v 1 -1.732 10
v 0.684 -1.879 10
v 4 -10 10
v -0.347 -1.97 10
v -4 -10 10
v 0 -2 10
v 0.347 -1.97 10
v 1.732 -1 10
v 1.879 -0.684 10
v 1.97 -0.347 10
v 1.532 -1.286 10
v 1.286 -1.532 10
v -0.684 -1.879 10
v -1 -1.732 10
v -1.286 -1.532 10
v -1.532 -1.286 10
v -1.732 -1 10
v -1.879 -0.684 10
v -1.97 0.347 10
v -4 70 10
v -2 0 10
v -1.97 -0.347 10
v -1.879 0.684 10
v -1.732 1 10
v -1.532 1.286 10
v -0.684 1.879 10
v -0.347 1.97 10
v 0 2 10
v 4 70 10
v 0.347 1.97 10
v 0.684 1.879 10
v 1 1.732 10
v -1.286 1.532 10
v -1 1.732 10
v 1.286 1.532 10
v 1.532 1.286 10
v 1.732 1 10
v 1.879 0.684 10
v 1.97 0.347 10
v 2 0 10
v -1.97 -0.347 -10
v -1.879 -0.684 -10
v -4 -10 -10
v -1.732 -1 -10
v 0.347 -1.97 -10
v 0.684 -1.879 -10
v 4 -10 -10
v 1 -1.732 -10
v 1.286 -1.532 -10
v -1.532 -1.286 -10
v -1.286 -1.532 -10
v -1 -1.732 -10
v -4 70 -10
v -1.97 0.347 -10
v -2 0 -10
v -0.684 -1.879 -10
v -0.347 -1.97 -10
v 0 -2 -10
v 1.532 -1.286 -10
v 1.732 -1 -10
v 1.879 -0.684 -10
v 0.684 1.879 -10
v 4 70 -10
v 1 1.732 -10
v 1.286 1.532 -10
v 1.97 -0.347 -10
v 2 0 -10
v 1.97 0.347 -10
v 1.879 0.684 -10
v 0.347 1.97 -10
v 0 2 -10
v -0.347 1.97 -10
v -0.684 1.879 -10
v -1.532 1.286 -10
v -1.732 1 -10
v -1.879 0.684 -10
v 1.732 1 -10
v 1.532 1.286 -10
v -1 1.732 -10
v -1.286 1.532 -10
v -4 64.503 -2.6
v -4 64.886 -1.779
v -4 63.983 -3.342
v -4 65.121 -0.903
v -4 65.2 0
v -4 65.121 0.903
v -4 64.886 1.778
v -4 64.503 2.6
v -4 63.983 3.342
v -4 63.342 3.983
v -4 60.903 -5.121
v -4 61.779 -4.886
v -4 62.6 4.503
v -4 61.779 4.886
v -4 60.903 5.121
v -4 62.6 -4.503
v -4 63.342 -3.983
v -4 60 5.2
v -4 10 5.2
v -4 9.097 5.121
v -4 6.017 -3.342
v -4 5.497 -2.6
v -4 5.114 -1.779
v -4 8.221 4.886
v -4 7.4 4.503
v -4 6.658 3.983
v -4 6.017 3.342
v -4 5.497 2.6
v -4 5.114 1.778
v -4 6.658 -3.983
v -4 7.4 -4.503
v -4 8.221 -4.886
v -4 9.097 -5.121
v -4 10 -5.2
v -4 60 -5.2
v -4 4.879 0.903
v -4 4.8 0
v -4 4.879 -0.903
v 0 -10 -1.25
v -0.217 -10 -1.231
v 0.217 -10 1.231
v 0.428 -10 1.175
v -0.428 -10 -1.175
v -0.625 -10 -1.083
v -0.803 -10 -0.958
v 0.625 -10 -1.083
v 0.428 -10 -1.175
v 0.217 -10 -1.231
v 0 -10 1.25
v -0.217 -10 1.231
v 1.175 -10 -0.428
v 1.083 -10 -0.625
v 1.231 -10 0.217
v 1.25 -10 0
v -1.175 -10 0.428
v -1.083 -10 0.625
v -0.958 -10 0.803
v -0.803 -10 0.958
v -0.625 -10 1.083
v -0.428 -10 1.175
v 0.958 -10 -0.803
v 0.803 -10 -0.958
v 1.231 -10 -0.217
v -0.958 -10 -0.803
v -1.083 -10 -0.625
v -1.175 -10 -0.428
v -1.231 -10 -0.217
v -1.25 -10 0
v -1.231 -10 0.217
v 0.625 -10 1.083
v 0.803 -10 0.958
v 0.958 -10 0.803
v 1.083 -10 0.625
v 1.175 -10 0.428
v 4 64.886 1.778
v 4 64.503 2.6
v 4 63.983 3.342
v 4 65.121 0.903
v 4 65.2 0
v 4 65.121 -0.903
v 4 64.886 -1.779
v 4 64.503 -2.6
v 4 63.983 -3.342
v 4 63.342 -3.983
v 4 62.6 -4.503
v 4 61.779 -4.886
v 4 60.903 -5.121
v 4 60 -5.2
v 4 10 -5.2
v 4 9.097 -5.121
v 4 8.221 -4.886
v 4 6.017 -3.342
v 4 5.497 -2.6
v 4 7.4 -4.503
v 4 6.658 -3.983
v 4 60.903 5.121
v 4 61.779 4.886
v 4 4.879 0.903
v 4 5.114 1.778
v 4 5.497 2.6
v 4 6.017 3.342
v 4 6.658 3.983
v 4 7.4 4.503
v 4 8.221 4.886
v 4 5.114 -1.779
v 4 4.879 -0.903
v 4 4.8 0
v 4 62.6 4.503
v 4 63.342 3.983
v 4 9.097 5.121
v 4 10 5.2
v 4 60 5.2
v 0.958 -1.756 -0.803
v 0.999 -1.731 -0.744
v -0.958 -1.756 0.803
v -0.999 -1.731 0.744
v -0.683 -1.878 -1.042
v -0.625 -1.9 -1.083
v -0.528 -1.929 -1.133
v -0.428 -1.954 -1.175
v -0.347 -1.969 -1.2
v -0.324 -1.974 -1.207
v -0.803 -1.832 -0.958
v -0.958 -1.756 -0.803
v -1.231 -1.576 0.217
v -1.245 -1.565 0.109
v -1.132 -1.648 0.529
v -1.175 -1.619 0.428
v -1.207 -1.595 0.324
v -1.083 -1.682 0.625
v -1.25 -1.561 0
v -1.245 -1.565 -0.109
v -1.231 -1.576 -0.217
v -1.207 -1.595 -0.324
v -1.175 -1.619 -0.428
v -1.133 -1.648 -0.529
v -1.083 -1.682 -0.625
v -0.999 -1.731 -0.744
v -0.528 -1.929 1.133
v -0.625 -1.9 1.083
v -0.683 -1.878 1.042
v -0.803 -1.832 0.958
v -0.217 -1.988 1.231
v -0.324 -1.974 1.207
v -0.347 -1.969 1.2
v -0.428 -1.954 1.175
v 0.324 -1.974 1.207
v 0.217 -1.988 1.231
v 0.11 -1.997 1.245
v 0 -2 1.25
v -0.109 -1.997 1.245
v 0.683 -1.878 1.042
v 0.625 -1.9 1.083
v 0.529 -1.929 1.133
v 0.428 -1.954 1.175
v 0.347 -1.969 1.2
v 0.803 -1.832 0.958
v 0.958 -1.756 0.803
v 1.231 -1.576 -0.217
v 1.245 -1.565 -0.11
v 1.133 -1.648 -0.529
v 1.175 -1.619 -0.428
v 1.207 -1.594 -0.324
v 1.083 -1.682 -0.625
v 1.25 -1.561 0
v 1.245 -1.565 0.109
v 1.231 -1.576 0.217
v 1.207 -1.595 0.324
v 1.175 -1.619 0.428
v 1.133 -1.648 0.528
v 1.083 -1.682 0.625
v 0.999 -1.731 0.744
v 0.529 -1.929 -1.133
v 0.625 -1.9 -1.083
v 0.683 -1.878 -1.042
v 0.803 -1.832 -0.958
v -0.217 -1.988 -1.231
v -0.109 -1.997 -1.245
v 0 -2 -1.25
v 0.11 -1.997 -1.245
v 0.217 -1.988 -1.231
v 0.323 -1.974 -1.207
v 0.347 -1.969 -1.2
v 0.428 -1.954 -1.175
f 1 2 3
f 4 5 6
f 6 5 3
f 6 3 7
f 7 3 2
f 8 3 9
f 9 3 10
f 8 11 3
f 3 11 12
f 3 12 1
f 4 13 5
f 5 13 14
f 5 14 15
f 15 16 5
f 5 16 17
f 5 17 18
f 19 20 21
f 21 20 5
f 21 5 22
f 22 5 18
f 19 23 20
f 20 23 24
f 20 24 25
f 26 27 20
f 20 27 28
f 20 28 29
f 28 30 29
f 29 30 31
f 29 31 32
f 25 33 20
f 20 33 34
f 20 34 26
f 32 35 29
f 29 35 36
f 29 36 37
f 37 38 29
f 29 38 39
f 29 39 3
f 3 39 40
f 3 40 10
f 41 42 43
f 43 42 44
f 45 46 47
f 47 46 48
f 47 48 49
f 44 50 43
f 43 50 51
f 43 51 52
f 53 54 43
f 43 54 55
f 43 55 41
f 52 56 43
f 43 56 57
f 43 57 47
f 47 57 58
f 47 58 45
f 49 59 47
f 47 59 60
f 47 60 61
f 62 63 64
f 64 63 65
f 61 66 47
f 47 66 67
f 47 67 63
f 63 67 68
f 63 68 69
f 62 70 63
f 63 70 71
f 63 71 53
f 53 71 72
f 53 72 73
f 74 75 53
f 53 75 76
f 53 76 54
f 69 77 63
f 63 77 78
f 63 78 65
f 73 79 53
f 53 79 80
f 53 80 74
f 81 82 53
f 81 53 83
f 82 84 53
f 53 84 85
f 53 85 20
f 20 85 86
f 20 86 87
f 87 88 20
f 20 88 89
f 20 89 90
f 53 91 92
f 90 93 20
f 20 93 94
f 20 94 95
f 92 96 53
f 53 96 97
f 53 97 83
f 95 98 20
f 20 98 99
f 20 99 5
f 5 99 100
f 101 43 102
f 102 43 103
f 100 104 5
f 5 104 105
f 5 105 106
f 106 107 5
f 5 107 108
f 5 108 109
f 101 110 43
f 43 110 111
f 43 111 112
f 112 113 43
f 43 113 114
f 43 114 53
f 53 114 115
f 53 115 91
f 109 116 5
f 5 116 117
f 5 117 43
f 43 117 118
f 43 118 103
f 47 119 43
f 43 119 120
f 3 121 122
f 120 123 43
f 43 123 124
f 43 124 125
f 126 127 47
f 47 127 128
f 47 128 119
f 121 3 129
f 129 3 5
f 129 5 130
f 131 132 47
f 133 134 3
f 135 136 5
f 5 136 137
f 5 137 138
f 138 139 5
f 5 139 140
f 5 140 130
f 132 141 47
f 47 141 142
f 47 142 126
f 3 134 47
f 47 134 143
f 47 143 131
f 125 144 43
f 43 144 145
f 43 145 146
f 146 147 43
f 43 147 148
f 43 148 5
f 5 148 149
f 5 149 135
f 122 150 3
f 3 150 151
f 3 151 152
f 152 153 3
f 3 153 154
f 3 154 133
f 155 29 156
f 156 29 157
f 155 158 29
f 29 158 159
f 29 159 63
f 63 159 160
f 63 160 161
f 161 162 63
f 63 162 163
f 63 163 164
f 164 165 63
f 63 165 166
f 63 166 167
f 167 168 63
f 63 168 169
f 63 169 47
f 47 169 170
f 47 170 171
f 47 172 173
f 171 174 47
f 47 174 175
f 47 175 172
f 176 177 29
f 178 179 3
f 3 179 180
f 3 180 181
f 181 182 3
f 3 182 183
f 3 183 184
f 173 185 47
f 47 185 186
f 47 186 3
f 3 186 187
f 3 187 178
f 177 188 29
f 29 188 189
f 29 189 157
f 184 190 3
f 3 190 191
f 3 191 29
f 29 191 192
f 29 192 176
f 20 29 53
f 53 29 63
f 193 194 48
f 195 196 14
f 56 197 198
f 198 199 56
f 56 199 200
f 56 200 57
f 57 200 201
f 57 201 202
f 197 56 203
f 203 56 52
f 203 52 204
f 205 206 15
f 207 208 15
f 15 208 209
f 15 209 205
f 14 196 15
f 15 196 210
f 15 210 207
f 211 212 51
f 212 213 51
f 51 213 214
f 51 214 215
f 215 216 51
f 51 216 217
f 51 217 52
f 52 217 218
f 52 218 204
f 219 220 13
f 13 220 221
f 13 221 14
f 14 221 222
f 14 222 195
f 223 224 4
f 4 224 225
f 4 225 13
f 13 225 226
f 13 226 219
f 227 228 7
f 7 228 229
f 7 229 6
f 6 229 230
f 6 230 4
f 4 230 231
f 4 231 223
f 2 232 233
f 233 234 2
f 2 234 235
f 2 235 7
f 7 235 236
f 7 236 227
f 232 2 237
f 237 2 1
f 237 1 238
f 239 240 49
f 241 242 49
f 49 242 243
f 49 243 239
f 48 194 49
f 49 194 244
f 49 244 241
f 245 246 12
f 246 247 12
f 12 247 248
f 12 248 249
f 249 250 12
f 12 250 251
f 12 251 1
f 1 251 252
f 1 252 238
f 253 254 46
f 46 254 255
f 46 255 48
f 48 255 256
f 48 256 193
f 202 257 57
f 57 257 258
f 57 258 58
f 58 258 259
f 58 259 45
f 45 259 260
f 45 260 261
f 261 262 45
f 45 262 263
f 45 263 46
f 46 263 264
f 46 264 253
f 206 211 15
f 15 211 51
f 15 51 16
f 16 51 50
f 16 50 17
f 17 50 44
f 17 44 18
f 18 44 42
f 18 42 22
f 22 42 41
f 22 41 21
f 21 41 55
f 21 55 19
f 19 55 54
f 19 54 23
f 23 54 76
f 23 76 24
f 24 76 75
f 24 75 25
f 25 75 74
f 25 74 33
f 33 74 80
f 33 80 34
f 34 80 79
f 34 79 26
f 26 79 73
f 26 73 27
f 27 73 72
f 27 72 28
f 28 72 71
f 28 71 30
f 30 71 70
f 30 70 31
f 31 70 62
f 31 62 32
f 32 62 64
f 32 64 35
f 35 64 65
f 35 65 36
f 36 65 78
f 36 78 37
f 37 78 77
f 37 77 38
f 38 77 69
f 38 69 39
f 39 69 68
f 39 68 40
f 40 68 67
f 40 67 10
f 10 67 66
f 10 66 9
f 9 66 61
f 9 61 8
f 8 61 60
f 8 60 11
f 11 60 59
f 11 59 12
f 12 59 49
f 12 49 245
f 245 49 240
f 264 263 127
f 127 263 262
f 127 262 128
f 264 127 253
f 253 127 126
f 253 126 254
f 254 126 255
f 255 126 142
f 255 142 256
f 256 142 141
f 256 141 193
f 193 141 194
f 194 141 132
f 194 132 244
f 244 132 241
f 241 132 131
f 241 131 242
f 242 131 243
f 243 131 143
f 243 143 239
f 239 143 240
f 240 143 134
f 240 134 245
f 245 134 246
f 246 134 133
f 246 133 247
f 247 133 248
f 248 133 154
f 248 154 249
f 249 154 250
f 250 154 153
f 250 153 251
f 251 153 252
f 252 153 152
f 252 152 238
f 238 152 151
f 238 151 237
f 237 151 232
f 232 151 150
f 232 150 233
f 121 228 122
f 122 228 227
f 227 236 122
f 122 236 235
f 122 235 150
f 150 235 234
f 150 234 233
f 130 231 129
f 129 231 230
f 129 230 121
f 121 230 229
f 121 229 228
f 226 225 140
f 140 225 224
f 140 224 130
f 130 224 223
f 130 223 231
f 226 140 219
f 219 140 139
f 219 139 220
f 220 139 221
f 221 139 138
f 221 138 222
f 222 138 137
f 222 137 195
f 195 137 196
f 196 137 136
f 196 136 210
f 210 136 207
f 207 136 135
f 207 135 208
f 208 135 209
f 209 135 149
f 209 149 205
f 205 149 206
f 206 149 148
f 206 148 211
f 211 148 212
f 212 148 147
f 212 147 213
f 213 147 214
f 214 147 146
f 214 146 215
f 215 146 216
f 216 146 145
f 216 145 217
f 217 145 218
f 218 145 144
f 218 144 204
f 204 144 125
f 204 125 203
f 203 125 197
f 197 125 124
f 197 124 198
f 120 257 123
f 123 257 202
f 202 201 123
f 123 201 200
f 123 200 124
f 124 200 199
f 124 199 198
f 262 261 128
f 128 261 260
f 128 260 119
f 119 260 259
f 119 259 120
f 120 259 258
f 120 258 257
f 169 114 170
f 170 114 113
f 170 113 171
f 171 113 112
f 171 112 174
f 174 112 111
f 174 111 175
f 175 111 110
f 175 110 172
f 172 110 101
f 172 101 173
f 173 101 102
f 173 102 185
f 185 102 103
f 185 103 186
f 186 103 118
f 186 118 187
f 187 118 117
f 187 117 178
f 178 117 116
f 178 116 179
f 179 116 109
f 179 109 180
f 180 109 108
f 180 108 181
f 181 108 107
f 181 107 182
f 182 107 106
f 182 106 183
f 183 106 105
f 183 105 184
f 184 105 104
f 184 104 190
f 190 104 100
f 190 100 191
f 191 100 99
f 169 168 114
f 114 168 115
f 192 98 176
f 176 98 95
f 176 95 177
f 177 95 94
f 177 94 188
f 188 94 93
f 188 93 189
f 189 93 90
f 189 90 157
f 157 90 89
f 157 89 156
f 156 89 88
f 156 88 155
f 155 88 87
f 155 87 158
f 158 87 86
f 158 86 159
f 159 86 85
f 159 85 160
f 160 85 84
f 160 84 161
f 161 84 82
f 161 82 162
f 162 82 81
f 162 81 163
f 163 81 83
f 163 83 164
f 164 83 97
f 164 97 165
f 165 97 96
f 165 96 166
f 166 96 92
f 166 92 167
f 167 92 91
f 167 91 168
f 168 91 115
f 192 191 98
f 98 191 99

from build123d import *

# Parameters (mm, degrees)
SKETCH1_W         = 8
SKETCH1_H         = 80
SKETCH1_R         = 2
MAIN_DEPTH        = 10
FIXHOLE_REACH     = 82
SKETCH3_R         = 1.25
ROLLINGHOLE_DEPTH = 9


with BuildPart() as part:
    # Sketch1 → Main (new body, symmetric)
    with BuildSketch(Plane.XY):
        with Locations((0, 30)):
            Rectangle(SKETCH1_W, SKETCH1_H)
        Circle(SKETCH1_R, mode=Mode.SUBTRACT)
    extrude(amount=MAIN_DEPTH, both=True)

    # Sketch3 → FixHole (cut, up to next)
    with BuildSketch(Plane(origin=(0, -10, 0), x_dir=(-1, 0, 0), z_dir=(0, -1, 0)), mode=Mode.PRIVATE) as fixhole_sk1:
        Circle(SKETCH3_R)
    fixhole_tool1 = extrude(fixhole_sk1.sketch, amount=-FIXHOLE_REACH, mode=Mode.PRIVATE) & part.part
    add(fixhole_tool1.solids().sort_by_distance((0, -10, 0))[0], mode=Mode.SUBTRACT)

    # Sketch4 → RollingHole (cut, through all)
    with BuildSketch(Plane.ZY.offset(4)):
        with BuildLine():
            Line((-5.2, 10), (-5.2, 60))
            ThreePointArc((-5.2, 60), (0, 65.2), (5.2, 60))
            Line((5.2, 60), (5.2, 10))
            ThreePointArc((5.2, 10), (0, 4.8), (-5.2, 10))
        make_face()
    extrude(amount=-ROLLINGHOLE_DEPTH, mode=Mode.SUBTRACT)


solid = part.part
